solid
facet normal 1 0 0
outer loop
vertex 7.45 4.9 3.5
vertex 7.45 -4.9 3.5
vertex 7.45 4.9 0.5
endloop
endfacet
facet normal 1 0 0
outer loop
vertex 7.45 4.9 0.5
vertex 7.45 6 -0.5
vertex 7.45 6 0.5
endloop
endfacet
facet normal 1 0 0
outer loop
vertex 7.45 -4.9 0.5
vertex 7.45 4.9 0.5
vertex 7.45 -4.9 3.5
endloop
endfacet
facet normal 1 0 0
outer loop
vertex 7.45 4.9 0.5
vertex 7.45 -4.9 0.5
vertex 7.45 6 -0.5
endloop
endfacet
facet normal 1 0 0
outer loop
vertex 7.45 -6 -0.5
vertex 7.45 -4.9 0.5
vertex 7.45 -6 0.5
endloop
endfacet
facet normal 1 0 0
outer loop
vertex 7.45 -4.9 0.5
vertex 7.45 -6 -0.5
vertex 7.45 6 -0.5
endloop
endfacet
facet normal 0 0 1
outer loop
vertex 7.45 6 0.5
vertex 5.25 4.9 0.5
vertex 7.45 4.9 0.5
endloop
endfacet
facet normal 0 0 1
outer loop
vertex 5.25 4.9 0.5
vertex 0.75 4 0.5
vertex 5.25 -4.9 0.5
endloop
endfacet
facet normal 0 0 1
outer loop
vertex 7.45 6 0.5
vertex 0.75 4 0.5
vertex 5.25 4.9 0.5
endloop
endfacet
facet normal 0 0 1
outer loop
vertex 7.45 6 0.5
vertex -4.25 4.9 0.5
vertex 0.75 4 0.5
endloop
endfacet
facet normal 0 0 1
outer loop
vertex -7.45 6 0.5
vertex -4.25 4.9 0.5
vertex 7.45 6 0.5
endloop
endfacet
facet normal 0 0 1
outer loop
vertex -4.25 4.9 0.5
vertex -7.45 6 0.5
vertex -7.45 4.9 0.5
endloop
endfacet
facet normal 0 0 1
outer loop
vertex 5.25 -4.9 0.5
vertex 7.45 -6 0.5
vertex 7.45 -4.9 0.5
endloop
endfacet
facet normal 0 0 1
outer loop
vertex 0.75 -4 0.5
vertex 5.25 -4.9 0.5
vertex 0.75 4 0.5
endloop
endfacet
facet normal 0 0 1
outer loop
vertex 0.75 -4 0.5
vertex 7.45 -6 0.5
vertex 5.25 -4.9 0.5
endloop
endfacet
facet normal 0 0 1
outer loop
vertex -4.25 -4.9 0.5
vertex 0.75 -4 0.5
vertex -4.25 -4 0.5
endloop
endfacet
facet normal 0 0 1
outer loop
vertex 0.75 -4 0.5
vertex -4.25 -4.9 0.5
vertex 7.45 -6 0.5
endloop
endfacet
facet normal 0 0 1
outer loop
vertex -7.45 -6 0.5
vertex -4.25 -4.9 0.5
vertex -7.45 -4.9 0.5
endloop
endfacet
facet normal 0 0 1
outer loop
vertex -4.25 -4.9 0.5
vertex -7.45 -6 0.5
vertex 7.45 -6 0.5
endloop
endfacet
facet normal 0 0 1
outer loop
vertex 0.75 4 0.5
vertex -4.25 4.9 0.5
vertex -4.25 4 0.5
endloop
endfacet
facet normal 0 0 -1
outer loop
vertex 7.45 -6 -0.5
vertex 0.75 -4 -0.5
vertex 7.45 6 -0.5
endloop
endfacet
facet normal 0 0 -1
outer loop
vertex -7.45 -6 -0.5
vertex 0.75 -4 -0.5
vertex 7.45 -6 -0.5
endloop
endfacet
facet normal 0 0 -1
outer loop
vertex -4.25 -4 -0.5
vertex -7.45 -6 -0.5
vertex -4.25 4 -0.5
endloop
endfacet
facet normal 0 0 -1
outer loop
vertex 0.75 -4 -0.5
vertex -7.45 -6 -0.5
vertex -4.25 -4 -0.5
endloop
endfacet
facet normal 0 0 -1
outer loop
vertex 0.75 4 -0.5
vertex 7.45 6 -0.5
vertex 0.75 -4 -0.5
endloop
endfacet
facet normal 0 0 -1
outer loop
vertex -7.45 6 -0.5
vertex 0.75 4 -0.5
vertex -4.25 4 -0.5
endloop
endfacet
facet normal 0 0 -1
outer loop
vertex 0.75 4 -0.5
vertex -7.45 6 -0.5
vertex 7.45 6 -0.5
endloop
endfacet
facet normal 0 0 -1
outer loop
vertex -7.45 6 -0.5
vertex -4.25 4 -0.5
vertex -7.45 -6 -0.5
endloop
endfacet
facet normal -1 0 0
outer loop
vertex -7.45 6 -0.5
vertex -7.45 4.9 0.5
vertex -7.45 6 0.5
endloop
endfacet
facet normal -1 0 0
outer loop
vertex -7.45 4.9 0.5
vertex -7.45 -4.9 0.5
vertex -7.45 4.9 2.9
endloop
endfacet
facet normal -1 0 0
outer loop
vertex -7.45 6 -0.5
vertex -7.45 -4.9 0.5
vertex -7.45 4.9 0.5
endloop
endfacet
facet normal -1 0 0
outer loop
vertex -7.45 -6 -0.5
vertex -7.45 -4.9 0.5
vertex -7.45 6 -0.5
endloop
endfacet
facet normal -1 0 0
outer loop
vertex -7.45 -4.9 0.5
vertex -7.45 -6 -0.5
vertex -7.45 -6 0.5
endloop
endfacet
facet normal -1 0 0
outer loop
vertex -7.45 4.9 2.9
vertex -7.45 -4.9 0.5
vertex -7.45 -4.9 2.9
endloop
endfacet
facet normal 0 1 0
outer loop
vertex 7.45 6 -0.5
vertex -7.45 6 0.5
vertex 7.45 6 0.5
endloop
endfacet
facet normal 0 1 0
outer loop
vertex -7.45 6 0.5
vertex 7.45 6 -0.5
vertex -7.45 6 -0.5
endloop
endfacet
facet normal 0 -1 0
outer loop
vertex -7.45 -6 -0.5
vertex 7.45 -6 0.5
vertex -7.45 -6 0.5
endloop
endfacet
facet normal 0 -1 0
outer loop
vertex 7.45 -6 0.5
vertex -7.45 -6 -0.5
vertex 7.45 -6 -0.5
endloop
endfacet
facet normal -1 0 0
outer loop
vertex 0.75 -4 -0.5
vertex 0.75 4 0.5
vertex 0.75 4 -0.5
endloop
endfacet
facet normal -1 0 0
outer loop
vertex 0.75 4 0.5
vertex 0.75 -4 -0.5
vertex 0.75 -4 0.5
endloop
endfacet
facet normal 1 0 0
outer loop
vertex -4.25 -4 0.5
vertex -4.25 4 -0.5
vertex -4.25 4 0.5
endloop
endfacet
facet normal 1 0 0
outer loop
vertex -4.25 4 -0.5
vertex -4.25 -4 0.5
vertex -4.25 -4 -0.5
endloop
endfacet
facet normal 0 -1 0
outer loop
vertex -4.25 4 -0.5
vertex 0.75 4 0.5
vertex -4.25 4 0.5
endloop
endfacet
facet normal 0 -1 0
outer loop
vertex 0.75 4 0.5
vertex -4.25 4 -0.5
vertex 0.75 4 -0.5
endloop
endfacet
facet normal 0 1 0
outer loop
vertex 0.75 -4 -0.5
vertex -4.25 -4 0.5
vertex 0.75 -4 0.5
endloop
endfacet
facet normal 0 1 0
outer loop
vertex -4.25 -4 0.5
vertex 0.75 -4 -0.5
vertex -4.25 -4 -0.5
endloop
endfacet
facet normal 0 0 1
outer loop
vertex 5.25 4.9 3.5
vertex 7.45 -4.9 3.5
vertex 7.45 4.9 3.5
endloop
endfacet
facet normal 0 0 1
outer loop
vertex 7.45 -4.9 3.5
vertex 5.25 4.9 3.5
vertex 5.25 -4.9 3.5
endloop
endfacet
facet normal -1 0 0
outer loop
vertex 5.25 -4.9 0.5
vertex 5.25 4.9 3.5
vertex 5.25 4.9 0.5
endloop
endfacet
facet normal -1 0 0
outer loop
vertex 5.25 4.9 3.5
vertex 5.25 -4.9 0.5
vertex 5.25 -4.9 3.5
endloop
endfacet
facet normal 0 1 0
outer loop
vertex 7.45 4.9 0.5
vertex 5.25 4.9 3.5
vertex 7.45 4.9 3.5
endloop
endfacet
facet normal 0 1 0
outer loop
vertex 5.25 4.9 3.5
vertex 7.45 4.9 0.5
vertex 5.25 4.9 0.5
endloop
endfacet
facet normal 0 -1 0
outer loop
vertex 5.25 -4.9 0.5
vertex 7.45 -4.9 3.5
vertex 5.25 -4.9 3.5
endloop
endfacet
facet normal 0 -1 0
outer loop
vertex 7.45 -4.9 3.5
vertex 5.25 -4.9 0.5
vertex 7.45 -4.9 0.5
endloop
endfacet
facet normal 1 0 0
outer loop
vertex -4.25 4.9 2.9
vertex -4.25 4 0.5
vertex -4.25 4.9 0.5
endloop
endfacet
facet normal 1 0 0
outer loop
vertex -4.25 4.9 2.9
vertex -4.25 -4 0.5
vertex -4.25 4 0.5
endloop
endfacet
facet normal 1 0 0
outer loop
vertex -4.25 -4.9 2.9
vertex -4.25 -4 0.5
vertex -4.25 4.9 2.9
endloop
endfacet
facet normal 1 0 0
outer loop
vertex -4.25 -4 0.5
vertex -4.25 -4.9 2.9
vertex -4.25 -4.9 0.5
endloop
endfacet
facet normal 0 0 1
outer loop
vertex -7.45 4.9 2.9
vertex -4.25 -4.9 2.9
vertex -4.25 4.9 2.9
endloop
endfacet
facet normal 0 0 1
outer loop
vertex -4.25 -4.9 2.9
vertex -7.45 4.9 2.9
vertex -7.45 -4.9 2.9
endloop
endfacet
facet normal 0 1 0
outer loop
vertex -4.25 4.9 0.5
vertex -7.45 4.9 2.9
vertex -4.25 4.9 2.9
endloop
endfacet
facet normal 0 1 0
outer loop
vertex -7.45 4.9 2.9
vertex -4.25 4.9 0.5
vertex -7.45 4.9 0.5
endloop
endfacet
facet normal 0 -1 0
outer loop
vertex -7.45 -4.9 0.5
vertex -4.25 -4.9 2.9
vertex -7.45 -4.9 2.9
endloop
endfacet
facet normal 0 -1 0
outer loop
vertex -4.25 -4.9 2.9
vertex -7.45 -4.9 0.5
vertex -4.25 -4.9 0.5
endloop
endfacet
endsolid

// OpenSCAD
length = 14.9;
baseHeight = 1;

cubeLength = 9.8;

frontCubeWidth = 2.2;
frontCubeHeight = 3;
translate([(length-frontCubeWidth)/2, 0, (baseHeight+frontCubeHeight)/2])
	cube([frontCubeWidth, cubeLength, frontCubeHeight], center=true);

backCubeWidth = 3.2;
backCubeHeight = 2.4;
translate([-(length-backCubeWidth)/2, 0, (baseHeight+backCubeHeight)/2])
	cube([backCubeWidth, cubeLength, backCubeHeight], center=true);
	
difference(){
	cube([length, 12, baseHeight], center=true);
	holeWidth = 5;
	#translate([-(length-holeWidth)/2+backCubeWidth ,0 ,0])
		cube([holeWidth, 8, baseHeight], center=true);
}
